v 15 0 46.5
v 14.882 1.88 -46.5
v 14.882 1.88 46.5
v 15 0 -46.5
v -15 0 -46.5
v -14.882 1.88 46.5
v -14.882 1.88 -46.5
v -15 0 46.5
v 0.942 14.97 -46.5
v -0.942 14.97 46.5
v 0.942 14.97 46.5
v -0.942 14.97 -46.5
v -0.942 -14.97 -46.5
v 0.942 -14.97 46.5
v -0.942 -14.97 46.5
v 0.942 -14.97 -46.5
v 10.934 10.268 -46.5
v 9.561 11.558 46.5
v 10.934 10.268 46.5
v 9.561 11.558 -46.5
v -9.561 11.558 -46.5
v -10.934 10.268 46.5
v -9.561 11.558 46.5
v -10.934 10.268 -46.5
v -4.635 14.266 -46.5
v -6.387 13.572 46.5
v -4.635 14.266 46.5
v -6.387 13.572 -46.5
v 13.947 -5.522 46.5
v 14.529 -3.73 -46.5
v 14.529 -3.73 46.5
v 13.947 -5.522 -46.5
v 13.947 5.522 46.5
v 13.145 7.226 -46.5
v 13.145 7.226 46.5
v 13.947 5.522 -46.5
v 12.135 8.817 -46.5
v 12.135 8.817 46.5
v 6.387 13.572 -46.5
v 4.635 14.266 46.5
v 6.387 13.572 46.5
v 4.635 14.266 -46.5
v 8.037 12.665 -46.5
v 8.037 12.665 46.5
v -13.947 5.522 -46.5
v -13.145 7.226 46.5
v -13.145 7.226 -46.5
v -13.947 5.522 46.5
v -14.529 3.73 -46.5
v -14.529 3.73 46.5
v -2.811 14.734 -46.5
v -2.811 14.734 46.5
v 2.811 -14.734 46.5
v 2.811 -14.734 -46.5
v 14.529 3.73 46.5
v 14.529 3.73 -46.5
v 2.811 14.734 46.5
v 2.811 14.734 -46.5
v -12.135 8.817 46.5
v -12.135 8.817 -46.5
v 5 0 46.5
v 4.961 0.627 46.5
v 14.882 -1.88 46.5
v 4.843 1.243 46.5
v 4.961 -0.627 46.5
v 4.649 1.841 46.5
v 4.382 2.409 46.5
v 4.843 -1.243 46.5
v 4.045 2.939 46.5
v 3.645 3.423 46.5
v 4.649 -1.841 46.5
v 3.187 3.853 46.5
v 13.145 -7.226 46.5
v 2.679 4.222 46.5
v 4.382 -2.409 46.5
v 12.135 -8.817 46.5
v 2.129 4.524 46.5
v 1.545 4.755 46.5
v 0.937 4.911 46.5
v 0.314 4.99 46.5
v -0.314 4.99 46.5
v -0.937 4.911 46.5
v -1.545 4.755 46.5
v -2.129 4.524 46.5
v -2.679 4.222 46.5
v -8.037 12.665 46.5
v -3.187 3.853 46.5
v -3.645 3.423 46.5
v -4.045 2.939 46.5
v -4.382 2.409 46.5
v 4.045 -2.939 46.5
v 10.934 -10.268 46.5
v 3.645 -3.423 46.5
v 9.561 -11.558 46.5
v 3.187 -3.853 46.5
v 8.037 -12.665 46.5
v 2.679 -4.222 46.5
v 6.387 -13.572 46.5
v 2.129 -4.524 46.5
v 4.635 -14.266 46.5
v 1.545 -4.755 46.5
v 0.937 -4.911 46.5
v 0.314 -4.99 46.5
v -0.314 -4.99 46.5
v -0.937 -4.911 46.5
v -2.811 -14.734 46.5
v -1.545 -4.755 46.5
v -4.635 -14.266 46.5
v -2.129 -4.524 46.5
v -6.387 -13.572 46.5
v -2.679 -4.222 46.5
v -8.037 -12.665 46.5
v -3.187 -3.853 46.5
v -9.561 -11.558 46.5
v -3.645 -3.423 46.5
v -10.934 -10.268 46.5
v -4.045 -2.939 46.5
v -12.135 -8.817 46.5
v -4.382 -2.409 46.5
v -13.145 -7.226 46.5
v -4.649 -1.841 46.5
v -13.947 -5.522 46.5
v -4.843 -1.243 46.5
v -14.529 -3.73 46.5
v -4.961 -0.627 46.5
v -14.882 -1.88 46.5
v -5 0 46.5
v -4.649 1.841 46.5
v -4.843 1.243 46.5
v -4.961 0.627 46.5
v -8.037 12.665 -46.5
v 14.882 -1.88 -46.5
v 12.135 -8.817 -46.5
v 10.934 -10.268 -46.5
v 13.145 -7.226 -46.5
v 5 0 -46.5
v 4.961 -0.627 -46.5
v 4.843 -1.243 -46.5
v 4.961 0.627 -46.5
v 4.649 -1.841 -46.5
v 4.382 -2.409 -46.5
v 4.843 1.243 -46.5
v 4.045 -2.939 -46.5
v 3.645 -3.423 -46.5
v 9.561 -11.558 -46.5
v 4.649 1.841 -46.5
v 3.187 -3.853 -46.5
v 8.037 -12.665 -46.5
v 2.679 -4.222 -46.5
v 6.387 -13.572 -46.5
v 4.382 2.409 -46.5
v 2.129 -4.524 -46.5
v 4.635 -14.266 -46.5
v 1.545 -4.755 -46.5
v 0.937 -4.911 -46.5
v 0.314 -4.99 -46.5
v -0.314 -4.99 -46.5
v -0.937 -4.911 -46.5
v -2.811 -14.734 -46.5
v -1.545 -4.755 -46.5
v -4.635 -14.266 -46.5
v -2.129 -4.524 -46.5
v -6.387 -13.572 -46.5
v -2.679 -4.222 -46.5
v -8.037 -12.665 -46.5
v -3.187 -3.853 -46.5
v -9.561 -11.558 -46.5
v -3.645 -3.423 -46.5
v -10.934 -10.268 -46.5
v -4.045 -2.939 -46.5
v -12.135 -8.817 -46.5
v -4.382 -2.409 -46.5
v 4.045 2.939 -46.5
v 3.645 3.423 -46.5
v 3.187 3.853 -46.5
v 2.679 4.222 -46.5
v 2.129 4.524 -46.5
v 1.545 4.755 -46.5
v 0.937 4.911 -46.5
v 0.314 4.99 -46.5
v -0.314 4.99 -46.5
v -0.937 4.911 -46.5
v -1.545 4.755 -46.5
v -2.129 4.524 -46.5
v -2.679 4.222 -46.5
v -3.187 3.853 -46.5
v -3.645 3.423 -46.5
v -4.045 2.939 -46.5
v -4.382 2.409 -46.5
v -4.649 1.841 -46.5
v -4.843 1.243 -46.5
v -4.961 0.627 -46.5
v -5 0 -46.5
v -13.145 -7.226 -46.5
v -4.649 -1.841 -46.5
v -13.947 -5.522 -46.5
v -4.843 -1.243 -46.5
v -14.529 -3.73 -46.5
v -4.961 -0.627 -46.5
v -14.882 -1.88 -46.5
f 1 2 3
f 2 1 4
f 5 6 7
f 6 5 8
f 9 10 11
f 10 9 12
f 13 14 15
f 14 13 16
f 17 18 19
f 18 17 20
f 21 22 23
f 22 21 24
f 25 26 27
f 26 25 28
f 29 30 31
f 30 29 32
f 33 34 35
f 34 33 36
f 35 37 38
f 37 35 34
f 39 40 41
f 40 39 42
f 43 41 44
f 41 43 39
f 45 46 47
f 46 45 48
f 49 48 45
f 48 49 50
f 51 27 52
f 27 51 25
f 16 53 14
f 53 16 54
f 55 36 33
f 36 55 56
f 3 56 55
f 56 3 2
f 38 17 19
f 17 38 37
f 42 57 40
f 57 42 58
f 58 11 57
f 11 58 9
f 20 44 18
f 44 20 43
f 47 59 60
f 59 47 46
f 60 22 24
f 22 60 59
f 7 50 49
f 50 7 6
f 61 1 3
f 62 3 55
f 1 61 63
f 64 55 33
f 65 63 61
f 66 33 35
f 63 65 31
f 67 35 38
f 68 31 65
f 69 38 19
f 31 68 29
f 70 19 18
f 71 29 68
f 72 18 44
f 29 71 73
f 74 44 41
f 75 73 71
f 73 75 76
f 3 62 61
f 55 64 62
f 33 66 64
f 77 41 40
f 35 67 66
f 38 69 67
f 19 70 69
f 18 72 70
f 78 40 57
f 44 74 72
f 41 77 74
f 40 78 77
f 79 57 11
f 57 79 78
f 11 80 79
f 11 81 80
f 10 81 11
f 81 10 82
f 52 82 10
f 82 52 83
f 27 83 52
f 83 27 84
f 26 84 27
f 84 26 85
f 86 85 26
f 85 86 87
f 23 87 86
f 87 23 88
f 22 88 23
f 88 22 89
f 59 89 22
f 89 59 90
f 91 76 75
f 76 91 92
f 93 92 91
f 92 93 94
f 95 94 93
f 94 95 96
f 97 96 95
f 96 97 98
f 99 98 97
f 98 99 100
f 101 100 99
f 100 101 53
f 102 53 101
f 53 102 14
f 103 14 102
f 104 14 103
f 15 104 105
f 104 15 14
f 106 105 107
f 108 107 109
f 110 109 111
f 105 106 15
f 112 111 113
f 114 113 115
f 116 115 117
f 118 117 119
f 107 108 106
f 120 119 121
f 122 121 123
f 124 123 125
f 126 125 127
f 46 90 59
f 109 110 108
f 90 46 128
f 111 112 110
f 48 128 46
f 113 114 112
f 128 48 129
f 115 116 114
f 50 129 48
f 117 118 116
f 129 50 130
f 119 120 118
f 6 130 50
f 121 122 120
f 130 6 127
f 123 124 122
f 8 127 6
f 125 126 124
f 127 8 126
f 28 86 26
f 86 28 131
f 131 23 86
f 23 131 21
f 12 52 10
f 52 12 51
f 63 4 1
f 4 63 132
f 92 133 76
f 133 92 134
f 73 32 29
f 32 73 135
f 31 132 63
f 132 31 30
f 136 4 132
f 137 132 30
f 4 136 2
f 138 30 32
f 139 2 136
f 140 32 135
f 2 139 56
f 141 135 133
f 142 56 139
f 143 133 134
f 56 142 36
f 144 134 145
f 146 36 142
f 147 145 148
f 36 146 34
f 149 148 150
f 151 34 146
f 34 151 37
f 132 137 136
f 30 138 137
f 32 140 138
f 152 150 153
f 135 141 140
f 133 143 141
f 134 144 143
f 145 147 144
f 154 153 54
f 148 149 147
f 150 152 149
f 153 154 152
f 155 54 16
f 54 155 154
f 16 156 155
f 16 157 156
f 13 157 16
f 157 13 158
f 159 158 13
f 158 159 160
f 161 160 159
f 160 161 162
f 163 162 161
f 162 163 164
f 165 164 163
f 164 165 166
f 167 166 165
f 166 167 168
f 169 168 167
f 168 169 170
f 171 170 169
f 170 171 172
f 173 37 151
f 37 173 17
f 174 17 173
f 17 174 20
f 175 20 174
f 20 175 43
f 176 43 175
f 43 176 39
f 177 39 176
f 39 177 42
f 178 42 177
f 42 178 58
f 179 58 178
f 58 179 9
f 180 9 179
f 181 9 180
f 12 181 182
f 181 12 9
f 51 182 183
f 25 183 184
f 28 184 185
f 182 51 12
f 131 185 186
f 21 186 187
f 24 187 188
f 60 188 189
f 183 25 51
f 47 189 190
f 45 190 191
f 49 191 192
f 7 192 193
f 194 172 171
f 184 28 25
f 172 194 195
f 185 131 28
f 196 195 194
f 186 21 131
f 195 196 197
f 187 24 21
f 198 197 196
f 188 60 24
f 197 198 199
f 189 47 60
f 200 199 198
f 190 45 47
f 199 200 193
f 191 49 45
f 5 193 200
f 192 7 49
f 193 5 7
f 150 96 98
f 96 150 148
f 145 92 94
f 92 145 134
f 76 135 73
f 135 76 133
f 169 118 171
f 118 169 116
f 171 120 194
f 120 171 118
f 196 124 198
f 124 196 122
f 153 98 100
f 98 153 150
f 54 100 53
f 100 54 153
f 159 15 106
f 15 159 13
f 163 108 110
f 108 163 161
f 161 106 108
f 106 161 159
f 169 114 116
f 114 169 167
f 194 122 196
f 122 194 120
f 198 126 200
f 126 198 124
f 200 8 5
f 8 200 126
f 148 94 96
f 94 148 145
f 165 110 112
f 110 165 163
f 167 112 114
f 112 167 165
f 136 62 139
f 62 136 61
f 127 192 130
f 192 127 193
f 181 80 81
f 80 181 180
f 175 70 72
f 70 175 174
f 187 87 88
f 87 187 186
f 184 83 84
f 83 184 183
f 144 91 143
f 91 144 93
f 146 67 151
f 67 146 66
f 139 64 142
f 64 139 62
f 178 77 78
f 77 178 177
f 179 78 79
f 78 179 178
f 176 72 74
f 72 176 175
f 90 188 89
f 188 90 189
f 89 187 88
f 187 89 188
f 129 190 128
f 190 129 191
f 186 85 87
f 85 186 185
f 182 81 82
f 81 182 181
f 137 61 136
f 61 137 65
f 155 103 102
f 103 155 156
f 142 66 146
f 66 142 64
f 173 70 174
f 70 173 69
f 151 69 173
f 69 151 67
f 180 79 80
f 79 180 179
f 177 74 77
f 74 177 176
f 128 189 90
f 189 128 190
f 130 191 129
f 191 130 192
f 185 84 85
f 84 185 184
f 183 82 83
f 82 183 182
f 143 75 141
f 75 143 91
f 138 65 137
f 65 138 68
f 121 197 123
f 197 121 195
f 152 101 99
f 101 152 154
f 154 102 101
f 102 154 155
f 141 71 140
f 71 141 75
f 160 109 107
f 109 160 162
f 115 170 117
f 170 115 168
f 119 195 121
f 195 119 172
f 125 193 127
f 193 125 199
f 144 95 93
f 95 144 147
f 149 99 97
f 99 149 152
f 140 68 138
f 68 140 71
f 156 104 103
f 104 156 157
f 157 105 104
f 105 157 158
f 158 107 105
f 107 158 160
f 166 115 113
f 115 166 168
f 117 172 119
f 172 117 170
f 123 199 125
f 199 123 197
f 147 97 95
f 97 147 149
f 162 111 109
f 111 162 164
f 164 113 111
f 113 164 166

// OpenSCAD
$fn = 50;


difference() {
	union() {
		translate(v = [0, 0, -46.5000000000]) {
			cylinder(h = 93, r = 15.0000000000);
		}
	}
	union() {
		translate(v = [0, 0, -100.0000000000]) {
			cylinder(h = 200, r = 5.0000000000);
		}
	}
}
